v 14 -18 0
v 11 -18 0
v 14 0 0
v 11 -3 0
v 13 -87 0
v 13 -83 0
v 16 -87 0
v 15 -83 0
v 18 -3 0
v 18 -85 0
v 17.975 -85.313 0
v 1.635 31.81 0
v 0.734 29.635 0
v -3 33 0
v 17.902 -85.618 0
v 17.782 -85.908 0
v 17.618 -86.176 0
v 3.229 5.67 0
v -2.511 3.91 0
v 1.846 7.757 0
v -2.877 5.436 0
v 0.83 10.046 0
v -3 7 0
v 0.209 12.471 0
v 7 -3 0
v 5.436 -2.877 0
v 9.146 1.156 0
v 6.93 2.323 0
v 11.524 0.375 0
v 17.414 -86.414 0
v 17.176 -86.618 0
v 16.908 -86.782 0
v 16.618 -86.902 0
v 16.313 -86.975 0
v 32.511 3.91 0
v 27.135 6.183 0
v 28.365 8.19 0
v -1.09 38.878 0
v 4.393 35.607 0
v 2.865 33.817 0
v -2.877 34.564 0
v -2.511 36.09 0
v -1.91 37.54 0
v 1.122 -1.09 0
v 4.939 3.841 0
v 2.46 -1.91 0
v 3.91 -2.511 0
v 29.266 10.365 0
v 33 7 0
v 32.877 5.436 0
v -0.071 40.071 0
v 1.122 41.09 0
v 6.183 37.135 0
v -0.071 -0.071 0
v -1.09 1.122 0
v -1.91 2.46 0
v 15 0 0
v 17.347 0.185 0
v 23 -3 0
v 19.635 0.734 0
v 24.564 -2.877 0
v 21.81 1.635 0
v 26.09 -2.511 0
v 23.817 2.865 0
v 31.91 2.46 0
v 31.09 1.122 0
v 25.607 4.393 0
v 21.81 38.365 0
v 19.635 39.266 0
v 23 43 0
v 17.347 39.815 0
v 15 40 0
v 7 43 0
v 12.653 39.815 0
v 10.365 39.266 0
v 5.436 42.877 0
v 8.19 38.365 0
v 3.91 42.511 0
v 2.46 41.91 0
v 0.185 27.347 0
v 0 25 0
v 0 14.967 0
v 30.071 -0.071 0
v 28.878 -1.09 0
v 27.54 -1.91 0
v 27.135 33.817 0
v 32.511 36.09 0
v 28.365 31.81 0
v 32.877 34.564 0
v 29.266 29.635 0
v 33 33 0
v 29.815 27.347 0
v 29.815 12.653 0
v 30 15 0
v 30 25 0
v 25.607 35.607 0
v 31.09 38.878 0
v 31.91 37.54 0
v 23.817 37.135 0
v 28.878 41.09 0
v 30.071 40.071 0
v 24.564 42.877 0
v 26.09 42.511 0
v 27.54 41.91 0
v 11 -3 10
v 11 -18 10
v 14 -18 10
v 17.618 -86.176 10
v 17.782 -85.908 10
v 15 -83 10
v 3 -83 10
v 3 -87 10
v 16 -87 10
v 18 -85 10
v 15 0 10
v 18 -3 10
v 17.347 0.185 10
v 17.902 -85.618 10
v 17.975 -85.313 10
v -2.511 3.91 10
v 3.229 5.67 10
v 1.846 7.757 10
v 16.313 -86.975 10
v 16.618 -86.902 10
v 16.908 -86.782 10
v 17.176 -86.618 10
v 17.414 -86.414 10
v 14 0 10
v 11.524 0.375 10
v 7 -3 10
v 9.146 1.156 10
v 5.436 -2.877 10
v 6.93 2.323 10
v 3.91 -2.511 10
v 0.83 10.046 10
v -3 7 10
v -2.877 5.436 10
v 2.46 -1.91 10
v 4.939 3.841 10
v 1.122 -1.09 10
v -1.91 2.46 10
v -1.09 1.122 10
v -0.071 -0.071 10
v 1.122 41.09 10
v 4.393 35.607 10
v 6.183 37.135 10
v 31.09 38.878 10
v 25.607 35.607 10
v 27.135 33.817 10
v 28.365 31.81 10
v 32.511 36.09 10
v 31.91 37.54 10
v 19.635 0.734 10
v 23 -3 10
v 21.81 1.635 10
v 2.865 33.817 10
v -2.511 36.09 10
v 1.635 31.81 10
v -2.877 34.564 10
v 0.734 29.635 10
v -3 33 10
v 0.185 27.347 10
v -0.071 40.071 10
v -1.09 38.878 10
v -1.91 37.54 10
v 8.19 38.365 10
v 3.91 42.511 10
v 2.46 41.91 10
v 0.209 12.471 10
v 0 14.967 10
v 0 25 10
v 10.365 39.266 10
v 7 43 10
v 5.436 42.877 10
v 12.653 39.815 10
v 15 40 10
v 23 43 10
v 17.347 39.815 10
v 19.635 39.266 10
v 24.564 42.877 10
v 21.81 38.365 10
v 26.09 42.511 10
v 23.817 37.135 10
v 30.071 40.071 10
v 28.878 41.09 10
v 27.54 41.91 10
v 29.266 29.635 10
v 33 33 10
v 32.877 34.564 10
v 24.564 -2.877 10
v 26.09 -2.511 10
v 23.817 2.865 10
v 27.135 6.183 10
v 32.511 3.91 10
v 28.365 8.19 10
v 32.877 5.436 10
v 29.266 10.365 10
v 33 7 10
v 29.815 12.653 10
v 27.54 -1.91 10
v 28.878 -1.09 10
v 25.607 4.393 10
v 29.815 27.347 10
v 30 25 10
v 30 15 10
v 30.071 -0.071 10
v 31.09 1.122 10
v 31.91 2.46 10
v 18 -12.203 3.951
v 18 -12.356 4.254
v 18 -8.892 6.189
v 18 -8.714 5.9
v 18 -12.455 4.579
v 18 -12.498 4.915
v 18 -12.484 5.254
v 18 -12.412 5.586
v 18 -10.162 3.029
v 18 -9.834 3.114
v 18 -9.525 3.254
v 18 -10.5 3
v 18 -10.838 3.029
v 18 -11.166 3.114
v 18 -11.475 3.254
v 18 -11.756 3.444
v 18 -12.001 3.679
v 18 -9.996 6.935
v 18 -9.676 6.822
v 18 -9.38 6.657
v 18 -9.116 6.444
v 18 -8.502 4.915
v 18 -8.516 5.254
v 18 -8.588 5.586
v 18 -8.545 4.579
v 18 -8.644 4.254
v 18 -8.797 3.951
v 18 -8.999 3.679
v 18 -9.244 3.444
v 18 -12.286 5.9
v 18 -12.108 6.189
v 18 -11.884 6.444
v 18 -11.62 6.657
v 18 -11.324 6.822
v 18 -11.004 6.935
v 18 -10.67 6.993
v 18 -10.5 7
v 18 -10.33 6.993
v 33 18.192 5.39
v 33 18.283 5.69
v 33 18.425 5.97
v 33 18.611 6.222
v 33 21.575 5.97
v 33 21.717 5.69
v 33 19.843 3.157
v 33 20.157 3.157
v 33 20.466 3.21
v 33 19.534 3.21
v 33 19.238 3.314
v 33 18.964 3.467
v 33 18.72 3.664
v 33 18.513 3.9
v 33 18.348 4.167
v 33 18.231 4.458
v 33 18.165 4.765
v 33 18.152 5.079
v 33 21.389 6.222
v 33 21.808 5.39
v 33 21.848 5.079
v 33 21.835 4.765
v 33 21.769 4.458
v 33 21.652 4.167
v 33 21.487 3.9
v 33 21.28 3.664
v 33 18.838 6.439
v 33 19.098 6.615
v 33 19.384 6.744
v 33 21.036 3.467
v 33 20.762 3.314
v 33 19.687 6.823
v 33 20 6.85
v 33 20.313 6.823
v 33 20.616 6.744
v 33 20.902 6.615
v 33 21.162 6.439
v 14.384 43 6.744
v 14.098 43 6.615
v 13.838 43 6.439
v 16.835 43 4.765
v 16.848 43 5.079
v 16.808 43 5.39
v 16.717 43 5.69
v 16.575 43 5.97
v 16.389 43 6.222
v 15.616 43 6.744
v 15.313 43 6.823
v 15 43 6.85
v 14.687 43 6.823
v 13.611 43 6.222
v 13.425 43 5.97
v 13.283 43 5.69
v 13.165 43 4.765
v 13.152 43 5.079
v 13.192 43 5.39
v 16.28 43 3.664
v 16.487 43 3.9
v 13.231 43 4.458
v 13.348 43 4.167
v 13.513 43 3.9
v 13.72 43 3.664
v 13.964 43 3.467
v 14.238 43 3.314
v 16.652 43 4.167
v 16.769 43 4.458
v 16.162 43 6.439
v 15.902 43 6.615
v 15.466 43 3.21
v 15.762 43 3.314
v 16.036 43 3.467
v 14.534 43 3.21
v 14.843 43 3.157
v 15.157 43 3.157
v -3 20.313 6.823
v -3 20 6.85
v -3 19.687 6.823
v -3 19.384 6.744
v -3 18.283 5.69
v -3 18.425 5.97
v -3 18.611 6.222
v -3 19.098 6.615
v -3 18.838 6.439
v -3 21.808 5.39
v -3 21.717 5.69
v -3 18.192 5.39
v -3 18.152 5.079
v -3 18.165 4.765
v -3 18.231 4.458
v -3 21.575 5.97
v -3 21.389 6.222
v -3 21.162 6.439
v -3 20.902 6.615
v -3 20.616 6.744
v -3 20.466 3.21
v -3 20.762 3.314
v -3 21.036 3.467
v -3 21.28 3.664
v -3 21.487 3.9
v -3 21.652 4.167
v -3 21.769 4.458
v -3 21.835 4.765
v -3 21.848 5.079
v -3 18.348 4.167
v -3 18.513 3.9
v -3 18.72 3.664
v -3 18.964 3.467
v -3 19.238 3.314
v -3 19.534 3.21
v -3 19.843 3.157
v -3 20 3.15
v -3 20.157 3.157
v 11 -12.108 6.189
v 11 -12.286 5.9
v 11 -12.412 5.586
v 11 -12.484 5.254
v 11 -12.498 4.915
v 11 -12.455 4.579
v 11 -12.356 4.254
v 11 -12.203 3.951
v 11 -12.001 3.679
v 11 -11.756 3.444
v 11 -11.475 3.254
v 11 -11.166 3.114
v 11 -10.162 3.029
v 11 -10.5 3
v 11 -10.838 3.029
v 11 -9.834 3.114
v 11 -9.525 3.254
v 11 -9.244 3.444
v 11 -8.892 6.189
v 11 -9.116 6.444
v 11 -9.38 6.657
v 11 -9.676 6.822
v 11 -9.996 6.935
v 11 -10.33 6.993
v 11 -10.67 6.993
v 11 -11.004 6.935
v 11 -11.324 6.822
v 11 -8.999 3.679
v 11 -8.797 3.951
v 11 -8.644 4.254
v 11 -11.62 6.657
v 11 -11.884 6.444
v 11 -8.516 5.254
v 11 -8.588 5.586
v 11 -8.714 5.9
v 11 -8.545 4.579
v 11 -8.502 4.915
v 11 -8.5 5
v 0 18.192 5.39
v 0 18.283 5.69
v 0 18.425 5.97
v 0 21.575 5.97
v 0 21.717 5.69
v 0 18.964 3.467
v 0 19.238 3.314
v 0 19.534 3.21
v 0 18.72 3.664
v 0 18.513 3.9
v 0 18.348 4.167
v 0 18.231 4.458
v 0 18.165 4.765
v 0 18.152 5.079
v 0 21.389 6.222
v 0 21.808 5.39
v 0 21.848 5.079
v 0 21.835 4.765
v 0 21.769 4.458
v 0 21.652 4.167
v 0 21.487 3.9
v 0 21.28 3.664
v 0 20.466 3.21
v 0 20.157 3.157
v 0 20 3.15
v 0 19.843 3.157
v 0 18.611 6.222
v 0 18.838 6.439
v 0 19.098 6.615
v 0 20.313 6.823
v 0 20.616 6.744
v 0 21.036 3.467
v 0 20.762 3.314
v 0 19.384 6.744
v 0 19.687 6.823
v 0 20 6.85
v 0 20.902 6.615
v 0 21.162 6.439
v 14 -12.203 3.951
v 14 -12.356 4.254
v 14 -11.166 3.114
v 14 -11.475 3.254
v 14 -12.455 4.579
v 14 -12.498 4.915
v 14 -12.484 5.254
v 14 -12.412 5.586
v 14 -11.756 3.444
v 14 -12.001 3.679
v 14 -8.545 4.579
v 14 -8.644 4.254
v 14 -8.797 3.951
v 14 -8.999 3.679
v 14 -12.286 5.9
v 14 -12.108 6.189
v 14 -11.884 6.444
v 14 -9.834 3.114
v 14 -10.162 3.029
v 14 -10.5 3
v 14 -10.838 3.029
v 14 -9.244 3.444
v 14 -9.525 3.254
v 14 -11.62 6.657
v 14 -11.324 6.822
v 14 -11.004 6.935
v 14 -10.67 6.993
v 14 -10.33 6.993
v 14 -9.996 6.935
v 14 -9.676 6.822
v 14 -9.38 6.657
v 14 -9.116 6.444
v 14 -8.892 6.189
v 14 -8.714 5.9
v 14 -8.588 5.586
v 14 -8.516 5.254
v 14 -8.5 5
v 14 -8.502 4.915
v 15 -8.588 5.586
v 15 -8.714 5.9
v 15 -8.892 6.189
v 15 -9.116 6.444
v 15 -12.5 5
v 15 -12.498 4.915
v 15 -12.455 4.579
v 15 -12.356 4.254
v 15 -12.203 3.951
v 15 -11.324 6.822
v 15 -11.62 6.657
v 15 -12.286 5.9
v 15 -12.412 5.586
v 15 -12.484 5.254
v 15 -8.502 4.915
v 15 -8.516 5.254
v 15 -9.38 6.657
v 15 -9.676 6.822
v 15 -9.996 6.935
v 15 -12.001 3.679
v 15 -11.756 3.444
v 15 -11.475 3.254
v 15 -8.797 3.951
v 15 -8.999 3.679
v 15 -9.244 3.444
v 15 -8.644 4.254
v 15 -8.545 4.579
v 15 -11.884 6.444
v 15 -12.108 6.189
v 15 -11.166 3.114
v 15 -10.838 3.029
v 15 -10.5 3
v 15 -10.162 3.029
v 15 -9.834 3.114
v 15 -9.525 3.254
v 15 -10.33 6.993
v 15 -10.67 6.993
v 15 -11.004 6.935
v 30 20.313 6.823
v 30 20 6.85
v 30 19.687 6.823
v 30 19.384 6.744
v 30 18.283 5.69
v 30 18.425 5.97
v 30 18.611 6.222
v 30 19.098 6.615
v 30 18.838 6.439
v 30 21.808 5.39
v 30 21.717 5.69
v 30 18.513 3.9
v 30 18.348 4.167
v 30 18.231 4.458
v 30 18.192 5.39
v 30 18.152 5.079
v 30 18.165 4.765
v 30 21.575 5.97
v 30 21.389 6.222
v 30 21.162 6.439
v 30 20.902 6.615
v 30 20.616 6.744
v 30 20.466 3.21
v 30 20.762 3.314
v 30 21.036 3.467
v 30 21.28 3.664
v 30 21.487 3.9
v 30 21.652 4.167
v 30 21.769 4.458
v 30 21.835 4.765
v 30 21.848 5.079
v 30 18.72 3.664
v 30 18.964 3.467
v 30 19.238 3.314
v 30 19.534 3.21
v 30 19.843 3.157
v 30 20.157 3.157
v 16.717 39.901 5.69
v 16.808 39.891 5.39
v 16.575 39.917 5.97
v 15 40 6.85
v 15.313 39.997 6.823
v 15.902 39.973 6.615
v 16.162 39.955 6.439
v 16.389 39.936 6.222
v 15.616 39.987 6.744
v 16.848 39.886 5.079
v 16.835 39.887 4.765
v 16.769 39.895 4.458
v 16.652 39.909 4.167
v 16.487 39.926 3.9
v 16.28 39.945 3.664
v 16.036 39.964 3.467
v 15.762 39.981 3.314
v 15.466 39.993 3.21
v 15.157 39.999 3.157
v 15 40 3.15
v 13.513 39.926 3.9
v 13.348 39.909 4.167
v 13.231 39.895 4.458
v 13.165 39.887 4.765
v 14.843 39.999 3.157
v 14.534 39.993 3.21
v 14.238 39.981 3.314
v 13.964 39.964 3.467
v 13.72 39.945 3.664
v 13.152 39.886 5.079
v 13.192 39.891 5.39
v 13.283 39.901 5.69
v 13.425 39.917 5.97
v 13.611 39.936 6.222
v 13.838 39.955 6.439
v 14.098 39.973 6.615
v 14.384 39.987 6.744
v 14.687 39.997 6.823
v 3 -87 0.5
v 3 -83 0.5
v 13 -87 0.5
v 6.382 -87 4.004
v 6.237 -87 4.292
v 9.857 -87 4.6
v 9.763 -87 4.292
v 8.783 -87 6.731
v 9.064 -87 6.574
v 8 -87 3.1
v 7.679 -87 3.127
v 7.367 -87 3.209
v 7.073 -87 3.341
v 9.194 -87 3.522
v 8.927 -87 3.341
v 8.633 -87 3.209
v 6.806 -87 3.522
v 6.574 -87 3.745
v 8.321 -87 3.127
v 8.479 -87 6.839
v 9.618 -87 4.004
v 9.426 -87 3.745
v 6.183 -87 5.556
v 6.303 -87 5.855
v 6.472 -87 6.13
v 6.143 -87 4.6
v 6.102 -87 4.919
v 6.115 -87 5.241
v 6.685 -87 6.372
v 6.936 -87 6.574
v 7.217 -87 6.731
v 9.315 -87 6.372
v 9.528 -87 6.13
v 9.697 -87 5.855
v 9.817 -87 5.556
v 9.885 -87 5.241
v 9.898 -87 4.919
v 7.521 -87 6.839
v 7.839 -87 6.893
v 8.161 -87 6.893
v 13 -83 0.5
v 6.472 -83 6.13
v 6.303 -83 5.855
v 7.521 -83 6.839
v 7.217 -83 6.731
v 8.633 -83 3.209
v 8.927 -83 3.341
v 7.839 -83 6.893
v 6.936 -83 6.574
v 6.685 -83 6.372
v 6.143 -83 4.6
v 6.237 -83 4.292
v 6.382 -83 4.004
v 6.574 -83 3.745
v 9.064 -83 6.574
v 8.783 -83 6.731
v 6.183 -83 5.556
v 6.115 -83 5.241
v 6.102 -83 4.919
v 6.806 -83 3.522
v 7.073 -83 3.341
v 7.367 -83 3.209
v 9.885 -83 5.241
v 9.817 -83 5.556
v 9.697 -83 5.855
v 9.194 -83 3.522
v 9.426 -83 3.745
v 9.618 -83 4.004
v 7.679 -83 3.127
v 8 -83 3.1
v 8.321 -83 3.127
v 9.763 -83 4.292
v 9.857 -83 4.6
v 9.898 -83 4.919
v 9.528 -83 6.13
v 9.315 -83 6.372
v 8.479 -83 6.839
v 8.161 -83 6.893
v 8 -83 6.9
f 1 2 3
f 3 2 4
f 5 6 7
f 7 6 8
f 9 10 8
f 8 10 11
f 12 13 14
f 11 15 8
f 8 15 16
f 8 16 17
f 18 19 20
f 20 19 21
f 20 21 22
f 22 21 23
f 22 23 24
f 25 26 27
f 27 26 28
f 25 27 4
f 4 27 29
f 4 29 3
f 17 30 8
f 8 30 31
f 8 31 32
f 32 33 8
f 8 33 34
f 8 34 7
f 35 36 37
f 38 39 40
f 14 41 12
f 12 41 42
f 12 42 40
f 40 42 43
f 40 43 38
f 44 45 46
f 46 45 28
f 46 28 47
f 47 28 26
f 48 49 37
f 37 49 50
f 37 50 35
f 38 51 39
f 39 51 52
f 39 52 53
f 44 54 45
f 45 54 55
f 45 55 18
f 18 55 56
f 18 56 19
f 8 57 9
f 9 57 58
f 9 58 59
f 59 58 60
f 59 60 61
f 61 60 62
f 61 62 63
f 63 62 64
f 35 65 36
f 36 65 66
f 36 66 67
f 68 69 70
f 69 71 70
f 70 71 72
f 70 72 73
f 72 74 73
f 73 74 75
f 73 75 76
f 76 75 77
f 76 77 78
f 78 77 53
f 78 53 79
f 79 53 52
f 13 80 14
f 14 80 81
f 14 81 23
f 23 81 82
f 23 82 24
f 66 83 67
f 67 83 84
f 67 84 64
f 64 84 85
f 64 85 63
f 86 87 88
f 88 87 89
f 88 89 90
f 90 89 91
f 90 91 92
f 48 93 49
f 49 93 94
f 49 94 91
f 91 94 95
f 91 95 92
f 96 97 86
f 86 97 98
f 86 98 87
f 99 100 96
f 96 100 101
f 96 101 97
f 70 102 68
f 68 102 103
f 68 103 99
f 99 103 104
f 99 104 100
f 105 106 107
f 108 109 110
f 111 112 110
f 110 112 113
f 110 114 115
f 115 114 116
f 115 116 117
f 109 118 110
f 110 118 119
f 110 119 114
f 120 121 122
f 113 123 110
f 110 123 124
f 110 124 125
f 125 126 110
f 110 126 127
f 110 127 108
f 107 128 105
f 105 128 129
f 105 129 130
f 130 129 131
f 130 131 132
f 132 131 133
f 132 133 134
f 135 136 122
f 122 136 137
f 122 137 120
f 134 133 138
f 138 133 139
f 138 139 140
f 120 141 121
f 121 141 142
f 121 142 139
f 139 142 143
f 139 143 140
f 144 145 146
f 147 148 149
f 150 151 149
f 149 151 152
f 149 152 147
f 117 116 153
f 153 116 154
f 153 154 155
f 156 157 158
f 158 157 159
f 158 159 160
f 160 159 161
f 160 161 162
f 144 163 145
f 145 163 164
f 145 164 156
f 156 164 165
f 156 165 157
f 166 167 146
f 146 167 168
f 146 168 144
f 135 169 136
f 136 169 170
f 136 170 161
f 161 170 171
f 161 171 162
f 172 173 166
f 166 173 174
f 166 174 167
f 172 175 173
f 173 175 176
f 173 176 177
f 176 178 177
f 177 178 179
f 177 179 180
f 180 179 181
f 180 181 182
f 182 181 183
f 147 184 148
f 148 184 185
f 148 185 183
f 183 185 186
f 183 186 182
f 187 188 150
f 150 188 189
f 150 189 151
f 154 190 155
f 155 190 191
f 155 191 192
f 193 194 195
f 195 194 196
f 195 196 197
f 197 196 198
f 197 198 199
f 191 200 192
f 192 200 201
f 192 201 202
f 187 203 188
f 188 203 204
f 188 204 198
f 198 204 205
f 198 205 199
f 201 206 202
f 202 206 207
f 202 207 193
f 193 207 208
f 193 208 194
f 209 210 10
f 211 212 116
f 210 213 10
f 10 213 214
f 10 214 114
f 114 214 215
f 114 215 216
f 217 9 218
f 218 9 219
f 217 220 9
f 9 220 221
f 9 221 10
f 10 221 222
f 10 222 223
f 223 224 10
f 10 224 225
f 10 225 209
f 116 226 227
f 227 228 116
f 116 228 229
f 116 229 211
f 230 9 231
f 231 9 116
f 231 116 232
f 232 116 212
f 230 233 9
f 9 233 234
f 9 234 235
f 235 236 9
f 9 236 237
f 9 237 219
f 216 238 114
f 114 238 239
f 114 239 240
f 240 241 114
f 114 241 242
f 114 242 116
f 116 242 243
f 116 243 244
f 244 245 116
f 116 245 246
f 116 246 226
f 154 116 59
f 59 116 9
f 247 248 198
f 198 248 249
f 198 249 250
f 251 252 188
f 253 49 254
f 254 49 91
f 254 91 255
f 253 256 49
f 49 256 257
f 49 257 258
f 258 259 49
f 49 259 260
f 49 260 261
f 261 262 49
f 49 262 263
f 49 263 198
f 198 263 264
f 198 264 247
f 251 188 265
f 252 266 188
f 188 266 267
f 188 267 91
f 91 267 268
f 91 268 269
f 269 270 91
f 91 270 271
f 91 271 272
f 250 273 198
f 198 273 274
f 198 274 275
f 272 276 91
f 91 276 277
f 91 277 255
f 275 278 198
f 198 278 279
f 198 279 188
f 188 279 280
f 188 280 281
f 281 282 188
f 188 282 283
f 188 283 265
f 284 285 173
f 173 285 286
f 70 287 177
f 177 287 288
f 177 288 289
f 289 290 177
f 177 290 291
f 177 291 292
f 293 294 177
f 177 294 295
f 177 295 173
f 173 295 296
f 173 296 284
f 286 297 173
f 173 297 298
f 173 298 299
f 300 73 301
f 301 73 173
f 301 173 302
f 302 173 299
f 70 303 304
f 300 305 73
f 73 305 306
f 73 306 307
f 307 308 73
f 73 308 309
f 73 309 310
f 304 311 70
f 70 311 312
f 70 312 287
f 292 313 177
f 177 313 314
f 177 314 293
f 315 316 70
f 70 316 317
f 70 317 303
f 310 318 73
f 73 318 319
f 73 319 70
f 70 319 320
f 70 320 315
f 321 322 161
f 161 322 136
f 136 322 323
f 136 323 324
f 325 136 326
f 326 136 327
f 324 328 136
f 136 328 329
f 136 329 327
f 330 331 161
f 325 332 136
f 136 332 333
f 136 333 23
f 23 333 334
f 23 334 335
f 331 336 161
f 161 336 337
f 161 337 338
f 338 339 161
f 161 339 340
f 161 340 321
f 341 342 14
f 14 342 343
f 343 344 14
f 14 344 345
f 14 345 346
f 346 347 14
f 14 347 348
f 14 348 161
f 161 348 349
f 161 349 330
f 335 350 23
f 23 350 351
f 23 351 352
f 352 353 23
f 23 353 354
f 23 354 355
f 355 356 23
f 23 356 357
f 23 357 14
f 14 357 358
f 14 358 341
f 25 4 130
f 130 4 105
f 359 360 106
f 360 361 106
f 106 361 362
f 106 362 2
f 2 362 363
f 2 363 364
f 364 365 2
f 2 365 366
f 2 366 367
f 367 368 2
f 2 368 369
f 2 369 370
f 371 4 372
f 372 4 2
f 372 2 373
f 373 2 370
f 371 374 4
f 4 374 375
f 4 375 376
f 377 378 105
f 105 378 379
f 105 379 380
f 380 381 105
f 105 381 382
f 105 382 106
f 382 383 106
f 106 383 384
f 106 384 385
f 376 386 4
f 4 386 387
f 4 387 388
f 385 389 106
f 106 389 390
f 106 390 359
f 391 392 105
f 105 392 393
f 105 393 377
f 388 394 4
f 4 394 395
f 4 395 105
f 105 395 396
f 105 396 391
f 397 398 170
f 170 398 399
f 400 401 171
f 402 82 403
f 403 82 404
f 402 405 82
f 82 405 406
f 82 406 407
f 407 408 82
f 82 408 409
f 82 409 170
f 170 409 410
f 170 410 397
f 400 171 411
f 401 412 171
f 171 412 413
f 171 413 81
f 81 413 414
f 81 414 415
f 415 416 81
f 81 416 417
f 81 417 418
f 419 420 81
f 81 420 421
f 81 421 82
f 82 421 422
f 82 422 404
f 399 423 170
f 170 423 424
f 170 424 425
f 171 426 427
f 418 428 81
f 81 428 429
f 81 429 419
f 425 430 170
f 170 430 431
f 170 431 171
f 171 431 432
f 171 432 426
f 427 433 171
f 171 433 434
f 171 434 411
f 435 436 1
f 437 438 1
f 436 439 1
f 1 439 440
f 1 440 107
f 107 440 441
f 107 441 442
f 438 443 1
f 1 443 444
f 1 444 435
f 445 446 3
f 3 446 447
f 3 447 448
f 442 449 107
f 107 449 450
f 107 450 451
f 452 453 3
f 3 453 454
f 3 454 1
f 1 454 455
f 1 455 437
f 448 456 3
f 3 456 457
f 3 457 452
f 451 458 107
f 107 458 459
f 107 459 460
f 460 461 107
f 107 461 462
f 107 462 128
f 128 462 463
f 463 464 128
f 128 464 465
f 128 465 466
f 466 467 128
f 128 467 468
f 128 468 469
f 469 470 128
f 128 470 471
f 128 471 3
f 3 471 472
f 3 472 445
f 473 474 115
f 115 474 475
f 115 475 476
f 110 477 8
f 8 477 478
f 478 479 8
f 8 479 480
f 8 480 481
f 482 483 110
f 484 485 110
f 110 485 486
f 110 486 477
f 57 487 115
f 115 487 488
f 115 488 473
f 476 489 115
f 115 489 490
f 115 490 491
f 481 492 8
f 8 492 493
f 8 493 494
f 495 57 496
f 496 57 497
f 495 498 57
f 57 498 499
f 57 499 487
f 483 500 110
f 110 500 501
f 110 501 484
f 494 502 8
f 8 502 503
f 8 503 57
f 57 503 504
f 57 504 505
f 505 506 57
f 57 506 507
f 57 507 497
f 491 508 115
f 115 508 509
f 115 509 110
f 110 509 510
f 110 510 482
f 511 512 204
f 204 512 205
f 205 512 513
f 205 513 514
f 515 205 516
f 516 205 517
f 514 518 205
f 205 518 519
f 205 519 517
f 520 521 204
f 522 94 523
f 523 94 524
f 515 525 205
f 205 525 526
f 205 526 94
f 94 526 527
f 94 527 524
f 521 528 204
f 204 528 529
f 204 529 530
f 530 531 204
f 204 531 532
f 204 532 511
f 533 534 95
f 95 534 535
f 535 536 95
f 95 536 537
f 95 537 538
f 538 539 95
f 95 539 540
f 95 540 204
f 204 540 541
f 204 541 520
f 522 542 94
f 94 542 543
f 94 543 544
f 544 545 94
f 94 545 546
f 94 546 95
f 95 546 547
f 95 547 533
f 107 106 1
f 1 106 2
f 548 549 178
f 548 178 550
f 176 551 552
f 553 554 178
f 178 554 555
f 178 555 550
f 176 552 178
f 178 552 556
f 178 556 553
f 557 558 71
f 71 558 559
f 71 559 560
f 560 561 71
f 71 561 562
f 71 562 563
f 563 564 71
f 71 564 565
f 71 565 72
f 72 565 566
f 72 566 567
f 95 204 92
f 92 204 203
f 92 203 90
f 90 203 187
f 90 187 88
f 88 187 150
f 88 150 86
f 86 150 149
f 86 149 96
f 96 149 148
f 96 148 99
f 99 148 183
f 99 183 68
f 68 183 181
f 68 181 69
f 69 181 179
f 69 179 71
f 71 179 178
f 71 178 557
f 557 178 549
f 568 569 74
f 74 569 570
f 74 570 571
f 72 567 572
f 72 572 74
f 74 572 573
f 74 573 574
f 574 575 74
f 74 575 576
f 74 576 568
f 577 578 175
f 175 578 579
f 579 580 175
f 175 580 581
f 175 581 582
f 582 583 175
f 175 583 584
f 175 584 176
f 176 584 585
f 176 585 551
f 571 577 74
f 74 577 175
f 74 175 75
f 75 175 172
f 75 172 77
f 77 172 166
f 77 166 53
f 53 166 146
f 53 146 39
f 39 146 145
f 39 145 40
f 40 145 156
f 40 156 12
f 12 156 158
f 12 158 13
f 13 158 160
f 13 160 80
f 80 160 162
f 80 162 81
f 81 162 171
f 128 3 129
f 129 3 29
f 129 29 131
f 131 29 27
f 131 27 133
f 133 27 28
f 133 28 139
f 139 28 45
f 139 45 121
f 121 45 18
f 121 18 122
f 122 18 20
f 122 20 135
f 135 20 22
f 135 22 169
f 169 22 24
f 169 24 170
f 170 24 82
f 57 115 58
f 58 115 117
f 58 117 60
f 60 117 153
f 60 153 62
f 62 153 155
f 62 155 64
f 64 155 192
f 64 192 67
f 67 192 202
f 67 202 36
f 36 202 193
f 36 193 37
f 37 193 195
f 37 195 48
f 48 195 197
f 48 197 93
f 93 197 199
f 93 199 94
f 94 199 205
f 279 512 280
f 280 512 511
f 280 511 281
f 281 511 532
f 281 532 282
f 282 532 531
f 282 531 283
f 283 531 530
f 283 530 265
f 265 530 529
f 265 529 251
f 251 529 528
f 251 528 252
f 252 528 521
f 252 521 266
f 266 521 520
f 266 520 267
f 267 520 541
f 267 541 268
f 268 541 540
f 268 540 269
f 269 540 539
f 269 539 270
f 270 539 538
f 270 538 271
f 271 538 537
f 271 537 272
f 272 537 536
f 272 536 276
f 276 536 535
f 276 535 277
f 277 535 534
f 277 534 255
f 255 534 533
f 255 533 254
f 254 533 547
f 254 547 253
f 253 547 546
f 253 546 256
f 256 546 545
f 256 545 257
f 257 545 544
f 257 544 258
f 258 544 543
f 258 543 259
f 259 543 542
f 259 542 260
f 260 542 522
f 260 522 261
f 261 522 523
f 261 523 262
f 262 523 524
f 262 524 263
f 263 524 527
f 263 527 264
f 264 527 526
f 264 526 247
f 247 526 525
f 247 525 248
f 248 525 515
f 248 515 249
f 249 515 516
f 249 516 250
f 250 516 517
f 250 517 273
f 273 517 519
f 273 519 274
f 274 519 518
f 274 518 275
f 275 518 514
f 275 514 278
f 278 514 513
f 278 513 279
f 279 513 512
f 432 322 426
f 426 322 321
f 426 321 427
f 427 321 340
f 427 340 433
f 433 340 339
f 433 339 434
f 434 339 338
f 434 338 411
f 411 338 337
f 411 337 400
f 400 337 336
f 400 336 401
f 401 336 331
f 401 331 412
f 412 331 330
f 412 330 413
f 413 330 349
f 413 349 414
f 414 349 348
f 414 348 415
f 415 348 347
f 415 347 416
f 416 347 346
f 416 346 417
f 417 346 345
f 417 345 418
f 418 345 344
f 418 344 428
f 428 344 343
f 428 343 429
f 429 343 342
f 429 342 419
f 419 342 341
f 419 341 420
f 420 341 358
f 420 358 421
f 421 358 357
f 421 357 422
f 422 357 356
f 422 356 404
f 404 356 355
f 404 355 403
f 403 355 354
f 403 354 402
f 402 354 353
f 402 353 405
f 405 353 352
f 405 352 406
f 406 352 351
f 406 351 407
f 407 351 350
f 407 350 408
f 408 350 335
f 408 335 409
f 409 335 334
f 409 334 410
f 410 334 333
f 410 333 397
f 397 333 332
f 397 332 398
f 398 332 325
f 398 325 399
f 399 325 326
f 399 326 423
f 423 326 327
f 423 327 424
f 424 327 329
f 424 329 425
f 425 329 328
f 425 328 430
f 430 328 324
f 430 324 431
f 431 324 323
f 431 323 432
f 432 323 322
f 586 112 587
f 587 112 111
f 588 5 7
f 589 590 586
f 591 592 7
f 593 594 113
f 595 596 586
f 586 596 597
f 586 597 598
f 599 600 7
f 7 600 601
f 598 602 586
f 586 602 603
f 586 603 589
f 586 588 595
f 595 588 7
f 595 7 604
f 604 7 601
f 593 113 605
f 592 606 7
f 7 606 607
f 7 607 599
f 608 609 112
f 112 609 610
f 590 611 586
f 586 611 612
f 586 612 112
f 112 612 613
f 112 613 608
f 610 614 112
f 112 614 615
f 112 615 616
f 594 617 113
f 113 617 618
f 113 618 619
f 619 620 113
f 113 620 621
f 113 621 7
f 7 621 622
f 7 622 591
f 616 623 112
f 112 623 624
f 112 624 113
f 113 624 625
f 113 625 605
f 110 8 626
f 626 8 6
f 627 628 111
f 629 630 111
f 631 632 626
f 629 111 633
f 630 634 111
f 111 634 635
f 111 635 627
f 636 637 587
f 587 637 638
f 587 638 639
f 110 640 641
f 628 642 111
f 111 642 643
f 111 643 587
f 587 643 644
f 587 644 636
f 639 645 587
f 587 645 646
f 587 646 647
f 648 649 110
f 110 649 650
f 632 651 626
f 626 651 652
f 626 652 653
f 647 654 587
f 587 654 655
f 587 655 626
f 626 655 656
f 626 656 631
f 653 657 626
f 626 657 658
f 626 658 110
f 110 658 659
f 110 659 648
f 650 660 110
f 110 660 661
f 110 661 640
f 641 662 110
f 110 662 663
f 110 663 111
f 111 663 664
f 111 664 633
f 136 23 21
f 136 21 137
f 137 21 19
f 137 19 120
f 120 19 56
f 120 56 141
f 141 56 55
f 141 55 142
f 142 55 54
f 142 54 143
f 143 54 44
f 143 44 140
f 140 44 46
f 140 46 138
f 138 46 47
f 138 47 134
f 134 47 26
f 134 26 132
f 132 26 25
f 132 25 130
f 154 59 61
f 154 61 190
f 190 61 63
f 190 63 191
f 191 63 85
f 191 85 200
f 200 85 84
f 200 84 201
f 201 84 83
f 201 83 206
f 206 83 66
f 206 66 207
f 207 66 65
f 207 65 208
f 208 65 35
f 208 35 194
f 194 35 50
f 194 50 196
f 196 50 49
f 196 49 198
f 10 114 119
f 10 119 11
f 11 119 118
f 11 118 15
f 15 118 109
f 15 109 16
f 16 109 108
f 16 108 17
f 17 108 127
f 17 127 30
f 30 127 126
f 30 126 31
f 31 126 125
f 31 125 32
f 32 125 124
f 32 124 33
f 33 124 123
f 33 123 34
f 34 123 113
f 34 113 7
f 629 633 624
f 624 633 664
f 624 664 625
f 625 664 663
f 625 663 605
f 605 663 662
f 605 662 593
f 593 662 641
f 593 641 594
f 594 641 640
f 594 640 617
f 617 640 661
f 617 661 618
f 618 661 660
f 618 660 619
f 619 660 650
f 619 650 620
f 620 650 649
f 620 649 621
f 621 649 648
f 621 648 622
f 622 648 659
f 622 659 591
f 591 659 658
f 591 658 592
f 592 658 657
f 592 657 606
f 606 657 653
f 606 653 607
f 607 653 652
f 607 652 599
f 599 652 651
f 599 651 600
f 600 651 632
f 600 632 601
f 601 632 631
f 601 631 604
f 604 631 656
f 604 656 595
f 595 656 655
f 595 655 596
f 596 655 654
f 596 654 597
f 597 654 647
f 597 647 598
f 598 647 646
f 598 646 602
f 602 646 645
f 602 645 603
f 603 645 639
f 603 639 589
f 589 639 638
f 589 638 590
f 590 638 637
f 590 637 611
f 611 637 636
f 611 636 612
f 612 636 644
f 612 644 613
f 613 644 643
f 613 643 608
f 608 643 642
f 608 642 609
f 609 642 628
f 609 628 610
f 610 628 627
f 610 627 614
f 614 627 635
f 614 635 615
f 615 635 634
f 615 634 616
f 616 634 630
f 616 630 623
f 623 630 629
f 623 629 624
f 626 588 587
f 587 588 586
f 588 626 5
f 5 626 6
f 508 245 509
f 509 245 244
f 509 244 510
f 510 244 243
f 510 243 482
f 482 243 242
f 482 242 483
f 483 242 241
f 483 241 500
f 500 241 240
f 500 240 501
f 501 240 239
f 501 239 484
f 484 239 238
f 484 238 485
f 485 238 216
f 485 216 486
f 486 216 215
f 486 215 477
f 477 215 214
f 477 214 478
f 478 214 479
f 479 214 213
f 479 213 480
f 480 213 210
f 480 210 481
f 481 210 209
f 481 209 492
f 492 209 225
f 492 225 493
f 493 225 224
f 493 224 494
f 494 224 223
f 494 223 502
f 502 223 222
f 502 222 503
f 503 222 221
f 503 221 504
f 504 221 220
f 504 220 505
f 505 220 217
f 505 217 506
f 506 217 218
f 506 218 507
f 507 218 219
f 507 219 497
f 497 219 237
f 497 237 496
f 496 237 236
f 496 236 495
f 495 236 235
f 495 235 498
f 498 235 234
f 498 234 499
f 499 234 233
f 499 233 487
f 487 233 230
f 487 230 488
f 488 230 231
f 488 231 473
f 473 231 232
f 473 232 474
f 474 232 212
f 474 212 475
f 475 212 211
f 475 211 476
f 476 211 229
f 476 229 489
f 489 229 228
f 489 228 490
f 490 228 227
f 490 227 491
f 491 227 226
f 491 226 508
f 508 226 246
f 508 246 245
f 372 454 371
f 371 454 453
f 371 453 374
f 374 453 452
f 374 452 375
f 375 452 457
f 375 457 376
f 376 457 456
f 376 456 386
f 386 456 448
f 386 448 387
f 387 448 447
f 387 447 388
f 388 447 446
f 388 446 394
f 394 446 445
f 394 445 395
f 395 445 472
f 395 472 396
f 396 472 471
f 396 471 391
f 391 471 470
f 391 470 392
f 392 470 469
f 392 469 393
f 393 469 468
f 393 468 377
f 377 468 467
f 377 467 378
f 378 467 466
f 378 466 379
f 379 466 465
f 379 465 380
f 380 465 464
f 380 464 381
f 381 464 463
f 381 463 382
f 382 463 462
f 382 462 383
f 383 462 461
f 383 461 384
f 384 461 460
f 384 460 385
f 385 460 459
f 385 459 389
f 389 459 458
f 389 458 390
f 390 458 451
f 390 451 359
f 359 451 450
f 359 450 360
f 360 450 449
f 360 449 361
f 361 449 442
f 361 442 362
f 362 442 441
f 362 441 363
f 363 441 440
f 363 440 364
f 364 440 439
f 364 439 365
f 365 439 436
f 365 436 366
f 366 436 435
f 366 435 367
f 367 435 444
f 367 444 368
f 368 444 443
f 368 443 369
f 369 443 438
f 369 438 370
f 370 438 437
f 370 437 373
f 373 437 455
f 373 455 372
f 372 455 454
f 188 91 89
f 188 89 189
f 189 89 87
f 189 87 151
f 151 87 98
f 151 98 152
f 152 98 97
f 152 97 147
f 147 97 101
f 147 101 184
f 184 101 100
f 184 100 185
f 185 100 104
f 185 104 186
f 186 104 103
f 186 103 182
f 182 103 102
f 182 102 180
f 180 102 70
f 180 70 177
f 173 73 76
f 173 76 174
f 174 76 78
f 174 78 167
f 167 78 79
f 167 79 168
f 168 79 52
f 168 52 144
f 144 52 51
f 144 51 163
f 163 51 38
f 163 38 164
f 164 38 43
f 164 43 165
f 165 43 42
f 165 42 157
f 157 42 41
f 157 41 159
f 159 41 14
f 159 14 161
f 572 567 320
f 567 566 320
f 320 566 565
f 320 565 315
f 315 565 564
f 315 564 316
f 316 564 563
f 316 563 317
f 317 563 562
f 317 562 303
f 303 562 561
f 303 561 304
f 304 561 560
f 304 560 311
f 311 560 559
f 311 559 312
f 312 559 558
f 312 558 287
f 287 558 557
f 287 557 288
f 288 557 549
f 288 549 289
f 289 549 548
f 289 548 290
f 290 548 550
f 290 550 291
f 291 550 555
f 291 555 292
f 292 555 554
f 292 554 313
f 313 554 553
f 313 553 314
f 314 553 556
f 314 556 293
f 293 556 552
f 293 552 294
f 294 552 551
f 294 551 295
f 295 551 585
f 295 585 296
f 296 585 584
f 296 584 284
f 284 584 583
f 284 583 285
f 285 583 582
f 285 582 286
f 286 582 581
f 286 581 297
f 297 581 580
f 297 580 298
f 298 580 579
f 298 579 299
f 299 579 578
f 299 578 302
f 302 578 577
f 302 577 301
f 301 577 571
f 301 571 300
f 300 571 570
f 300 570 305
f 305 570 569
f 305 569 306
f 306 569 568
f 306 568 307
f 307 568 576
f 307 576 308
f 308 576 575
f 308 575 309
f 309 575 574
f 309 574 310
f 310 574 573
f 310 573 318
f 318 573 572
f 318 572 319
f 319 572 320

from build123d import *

# Parameters (mm, degrees)
BOSS_EXTRUDE2_DEPTH      = 10
CUT_EXTRUDE2_DEPTH       = 90.877694674
CUT_EXTRUDE2_DEPTH_BACK  = 90.877694674
SKETCH5_W                = 11
SKETCH5_H                = 67.407766248
CUT_EXTRUDE3_DEPTH       = 87.446515257
CUT_EXTRUDE3_DEPTH_BACK  = 87.446515257
SKETCH16_R               = 1.85
FILLET16_R               = 15
CUT_EXTRUDE20_DEPTH      = 92.021975369
CUT_EXTRUDE20_DEPTH_BACK = 92.021975369
SKETCH45_R               = 1.85
SKETCH52_W               = 15
SKETCH52_H               = 10
BOSS_EXTRUDE25_DEPTH     = 4
FILLET17_R               = 10
FILLET18_R               = 2
SKETCH53_R               = 1.9
CUT_EXTRUDE25_DEPTH      = 10
SKETCH55_W               = 0.5
SKETCH55_H               = 4
CUT_EXTRUDE28_DEPTH      = 10
CUT_EXTRUDE32_DEPTH      = 91.055538419
CUT_EXTRUDE32_DEPTH_BACK = 91.055538419
SKETCH60_R               = 2
FILLET19_R               = 10
SKETCH61_R               = 1.85
CUT_EXTRUDE33_DEPTH      = 10


with BuildPart() as part:
    # Sketch2 → Boss-Extrude2 (new body)
    with BuildSketch(Plane.XY):
        Polygon((18, -3), (33, -3), (33, 43), (-3, 43), (-3, -3), (11, -3), (11, -83), (18, -83), align=None)
        Polygon((15, 0), (30, 0), (30, 40), (0, 40), (0, 0), (14, 0), (14, -80), (15, -80), align=None, mode=Mode.SUBTRACT)
    extrude(amount=BOSS_EXTRUDE2_DEPTH)

    # Sketch5 → Cut-Extrude2 (cut, two sides: drawn at the far end of the back side and taken through both)
    with BuildSketch(Plane.XY.offset(10).offset(-CUT_EXTRUDE2_DEPTH_BACK)):
        with Locations((9.5, -51.703883124)):
            Rectangle(SKETCH5_W, SKETCH5_H)
    extrude(amount=CUT_EXTRUDE2_DEPTH + CUT_EXTRUDE2_DEPTH_BACK, mode=Mode.SUBTRACT)

    # Sketch16 → Cut-Extrude3 (cut, two sides: drawn at the far end of the back side and taken through both)
    with BuildSketch(Plane.ZY.offset(-11).offset(-CUT_EXTRUDE3_DEPTH_BACK)):
        with Locations((5, -10.5)):
            Circle(SKETCH16_R)
    extrude(amount=CUT_EXTRUDE3_DEPTH + CUT_EXTRUDE3_DEPTH_BACK, mode=Mode.SUBTRACT)

    # Fillet16
    # the kernel refuses this fillet: 15 mm, written as the material it adds along each edge
    with BuildSketch(Plane(origin=(0, 40, 0), x_dir=(0, -1, 0), z_dir=(0, 0, 1)), Plane(origin=(30, 40, 0), x_dir=(-1, 0, 0), z_dir=(0, 0, 1)), Plane(origin=(30, 0, 0), x_dir=(0, 1, 0), z_dir=(0, 0, 1))) as fillet16_piece_1:
        with BuildLine():
            CenterArc((FILLET16_R, FILLET16_R), FILLET16_R, 180, 90)
            Line((0, FILLET16_R), (-FILLET16_R * 0.02, FILLET16_R))
            Line((-FILLET16_R * 0.02, FILLET16_R), (-FILLET16_R * 0.02, -FILLET16_R * 0.02))
            Line((-FILLET16_R * 0.02, -FILLET16_R * 0.02), (FILLET16_R, -FILLET16_R * 0.02))
            Line((FILLET16_R, -FILLET16_R * 0.02), (FILLET16_R, 0))
        make_face()
    extrude(amount=10)
    with BuildSketch(Plane(origin=(0, 0, 0), x_dir=(1, 0, 0), z_dir=(0, 0, 1))) as fillet16_piece_2:
        with BuildLine():
            CenterArc((15, 14.966629547), FILLET16_R, 180, 86.177446271)
            Line((0, 14.966629547), (-0.3, 14.966629547))
            Line((-0.3, 14.966629547), (-0.3, 0))
            Line((-0.3, 0), (0, -0.3))
            ThreePointArc((0, -0.3), (7, -0.3), (13.98, -0.299332591))
            Line((13.98, -0.299332591), (14, 0))
        make_face()
    extrude(amount=10)

    # Sketch45 → Cut-Extrude20 (cut, two sides: drawn at the far end of the back side and taken through both)
    with BuildSketch(Plane.ZY.offset(3).offset(-CUT_EXTRUDE20_DEPTH_BACK)):
        with Locations((5, 20)):
            Circle(SKETCH45_R)
    extrude(amount=CUT_EXTRUDE20_DEPTH + CUT_EXTRUDE20_DEPTH_BACK, mode=Mode.SUBTRACT)

    # Sketch52 → Boss-Extrude25 (add)
    with BuildSketch(Plane.XZ.offset(83)):
        with Locations((10.5, 5)):
            Rectangle(SKETCH52_W, SKETCH52_H)
    extrude(amount=BOSS_EXTRUDE25_DEPTH)

    # Fillet17
    fillet17_edges = [part.edges().sort_by_distance(p)[0] for p in [
        (-3, -3, 5),
        (33, -3, 5),
    ]]
    fillet(fillet17_edges, radius=FILLET17_R)

    # Fillet18
    fillet18_edges = [part.edges().sort_by_distance(p)[0] for p in [
        (18, -87, 5),
    ]]
    fillet(fillet18_edges, radius=FILLET18_R)

    # Sketch53 → Cut-Extrude25 (cut)
    with BuildSketch(Plane.XZ.offset(87)):
        with Locations(Location((8, 5, 0), (0, 0, 270))):
            Circle(SKETCH53_R)
    extrude(amount=-CUT_EXTRUDE25_DEPTH, mode=Mode.SUBTRACT)

    # Sketch55 → Cut-Extrude28 (cut)
    with BuildSketch(Plane.ZY.offset(-3)):
        with Locations((0.25, -85)):
            Rectangle(SKETCH55_W, SKETCH55_H)
    extrude(amount=-CUT_EXTRUDE28_DEPTH, mode=Mode.SUBTRACT)

    # Sketch60 → Cut-Extrude32 (cut, two sides: drawn at the far end of the back side and taken through both)
    with BuildSketch(Plane(origin=(18, 0, 0), x_dir=(0, 0, -1), z_dir=(1, 0, 0)).offset(-CUT_EXTRUDE32_DEPTH_BACK)):
        with Locations((-5, -10.5)):
            Circle(SKETCH60_R)
    extrude(amount=CUT_EXTRUDE32_DEPTH + CUT_EXTRUDE32_DEPTH_BACK, mode=Mode.SUBTRACT)

    # Fillet19
    fillet19_edges = [part.edges().sort_by_distance(p)[0] for p in [
        (-3, 43, 5),
        (33, 43, 5),
    ]]
    fillet(fillet19_edges, radius=FILLET19_R)

    # Sketch61 → Cut-Extrude33 (cut)
    with BuildSketch(Plane(origin=(0, 43, 0), x_dir=(1, 0, 0), z_dir=(0, 1, 0))):
        with Locations(Location((15, -5, 0), (0, 0, 270))):
            Circle(SKETCH61_R)
    extrude(amount=-CUT_EXTRUDE33_DEPTH, mode=Mode.SUBTRACT)


solid = part.part
